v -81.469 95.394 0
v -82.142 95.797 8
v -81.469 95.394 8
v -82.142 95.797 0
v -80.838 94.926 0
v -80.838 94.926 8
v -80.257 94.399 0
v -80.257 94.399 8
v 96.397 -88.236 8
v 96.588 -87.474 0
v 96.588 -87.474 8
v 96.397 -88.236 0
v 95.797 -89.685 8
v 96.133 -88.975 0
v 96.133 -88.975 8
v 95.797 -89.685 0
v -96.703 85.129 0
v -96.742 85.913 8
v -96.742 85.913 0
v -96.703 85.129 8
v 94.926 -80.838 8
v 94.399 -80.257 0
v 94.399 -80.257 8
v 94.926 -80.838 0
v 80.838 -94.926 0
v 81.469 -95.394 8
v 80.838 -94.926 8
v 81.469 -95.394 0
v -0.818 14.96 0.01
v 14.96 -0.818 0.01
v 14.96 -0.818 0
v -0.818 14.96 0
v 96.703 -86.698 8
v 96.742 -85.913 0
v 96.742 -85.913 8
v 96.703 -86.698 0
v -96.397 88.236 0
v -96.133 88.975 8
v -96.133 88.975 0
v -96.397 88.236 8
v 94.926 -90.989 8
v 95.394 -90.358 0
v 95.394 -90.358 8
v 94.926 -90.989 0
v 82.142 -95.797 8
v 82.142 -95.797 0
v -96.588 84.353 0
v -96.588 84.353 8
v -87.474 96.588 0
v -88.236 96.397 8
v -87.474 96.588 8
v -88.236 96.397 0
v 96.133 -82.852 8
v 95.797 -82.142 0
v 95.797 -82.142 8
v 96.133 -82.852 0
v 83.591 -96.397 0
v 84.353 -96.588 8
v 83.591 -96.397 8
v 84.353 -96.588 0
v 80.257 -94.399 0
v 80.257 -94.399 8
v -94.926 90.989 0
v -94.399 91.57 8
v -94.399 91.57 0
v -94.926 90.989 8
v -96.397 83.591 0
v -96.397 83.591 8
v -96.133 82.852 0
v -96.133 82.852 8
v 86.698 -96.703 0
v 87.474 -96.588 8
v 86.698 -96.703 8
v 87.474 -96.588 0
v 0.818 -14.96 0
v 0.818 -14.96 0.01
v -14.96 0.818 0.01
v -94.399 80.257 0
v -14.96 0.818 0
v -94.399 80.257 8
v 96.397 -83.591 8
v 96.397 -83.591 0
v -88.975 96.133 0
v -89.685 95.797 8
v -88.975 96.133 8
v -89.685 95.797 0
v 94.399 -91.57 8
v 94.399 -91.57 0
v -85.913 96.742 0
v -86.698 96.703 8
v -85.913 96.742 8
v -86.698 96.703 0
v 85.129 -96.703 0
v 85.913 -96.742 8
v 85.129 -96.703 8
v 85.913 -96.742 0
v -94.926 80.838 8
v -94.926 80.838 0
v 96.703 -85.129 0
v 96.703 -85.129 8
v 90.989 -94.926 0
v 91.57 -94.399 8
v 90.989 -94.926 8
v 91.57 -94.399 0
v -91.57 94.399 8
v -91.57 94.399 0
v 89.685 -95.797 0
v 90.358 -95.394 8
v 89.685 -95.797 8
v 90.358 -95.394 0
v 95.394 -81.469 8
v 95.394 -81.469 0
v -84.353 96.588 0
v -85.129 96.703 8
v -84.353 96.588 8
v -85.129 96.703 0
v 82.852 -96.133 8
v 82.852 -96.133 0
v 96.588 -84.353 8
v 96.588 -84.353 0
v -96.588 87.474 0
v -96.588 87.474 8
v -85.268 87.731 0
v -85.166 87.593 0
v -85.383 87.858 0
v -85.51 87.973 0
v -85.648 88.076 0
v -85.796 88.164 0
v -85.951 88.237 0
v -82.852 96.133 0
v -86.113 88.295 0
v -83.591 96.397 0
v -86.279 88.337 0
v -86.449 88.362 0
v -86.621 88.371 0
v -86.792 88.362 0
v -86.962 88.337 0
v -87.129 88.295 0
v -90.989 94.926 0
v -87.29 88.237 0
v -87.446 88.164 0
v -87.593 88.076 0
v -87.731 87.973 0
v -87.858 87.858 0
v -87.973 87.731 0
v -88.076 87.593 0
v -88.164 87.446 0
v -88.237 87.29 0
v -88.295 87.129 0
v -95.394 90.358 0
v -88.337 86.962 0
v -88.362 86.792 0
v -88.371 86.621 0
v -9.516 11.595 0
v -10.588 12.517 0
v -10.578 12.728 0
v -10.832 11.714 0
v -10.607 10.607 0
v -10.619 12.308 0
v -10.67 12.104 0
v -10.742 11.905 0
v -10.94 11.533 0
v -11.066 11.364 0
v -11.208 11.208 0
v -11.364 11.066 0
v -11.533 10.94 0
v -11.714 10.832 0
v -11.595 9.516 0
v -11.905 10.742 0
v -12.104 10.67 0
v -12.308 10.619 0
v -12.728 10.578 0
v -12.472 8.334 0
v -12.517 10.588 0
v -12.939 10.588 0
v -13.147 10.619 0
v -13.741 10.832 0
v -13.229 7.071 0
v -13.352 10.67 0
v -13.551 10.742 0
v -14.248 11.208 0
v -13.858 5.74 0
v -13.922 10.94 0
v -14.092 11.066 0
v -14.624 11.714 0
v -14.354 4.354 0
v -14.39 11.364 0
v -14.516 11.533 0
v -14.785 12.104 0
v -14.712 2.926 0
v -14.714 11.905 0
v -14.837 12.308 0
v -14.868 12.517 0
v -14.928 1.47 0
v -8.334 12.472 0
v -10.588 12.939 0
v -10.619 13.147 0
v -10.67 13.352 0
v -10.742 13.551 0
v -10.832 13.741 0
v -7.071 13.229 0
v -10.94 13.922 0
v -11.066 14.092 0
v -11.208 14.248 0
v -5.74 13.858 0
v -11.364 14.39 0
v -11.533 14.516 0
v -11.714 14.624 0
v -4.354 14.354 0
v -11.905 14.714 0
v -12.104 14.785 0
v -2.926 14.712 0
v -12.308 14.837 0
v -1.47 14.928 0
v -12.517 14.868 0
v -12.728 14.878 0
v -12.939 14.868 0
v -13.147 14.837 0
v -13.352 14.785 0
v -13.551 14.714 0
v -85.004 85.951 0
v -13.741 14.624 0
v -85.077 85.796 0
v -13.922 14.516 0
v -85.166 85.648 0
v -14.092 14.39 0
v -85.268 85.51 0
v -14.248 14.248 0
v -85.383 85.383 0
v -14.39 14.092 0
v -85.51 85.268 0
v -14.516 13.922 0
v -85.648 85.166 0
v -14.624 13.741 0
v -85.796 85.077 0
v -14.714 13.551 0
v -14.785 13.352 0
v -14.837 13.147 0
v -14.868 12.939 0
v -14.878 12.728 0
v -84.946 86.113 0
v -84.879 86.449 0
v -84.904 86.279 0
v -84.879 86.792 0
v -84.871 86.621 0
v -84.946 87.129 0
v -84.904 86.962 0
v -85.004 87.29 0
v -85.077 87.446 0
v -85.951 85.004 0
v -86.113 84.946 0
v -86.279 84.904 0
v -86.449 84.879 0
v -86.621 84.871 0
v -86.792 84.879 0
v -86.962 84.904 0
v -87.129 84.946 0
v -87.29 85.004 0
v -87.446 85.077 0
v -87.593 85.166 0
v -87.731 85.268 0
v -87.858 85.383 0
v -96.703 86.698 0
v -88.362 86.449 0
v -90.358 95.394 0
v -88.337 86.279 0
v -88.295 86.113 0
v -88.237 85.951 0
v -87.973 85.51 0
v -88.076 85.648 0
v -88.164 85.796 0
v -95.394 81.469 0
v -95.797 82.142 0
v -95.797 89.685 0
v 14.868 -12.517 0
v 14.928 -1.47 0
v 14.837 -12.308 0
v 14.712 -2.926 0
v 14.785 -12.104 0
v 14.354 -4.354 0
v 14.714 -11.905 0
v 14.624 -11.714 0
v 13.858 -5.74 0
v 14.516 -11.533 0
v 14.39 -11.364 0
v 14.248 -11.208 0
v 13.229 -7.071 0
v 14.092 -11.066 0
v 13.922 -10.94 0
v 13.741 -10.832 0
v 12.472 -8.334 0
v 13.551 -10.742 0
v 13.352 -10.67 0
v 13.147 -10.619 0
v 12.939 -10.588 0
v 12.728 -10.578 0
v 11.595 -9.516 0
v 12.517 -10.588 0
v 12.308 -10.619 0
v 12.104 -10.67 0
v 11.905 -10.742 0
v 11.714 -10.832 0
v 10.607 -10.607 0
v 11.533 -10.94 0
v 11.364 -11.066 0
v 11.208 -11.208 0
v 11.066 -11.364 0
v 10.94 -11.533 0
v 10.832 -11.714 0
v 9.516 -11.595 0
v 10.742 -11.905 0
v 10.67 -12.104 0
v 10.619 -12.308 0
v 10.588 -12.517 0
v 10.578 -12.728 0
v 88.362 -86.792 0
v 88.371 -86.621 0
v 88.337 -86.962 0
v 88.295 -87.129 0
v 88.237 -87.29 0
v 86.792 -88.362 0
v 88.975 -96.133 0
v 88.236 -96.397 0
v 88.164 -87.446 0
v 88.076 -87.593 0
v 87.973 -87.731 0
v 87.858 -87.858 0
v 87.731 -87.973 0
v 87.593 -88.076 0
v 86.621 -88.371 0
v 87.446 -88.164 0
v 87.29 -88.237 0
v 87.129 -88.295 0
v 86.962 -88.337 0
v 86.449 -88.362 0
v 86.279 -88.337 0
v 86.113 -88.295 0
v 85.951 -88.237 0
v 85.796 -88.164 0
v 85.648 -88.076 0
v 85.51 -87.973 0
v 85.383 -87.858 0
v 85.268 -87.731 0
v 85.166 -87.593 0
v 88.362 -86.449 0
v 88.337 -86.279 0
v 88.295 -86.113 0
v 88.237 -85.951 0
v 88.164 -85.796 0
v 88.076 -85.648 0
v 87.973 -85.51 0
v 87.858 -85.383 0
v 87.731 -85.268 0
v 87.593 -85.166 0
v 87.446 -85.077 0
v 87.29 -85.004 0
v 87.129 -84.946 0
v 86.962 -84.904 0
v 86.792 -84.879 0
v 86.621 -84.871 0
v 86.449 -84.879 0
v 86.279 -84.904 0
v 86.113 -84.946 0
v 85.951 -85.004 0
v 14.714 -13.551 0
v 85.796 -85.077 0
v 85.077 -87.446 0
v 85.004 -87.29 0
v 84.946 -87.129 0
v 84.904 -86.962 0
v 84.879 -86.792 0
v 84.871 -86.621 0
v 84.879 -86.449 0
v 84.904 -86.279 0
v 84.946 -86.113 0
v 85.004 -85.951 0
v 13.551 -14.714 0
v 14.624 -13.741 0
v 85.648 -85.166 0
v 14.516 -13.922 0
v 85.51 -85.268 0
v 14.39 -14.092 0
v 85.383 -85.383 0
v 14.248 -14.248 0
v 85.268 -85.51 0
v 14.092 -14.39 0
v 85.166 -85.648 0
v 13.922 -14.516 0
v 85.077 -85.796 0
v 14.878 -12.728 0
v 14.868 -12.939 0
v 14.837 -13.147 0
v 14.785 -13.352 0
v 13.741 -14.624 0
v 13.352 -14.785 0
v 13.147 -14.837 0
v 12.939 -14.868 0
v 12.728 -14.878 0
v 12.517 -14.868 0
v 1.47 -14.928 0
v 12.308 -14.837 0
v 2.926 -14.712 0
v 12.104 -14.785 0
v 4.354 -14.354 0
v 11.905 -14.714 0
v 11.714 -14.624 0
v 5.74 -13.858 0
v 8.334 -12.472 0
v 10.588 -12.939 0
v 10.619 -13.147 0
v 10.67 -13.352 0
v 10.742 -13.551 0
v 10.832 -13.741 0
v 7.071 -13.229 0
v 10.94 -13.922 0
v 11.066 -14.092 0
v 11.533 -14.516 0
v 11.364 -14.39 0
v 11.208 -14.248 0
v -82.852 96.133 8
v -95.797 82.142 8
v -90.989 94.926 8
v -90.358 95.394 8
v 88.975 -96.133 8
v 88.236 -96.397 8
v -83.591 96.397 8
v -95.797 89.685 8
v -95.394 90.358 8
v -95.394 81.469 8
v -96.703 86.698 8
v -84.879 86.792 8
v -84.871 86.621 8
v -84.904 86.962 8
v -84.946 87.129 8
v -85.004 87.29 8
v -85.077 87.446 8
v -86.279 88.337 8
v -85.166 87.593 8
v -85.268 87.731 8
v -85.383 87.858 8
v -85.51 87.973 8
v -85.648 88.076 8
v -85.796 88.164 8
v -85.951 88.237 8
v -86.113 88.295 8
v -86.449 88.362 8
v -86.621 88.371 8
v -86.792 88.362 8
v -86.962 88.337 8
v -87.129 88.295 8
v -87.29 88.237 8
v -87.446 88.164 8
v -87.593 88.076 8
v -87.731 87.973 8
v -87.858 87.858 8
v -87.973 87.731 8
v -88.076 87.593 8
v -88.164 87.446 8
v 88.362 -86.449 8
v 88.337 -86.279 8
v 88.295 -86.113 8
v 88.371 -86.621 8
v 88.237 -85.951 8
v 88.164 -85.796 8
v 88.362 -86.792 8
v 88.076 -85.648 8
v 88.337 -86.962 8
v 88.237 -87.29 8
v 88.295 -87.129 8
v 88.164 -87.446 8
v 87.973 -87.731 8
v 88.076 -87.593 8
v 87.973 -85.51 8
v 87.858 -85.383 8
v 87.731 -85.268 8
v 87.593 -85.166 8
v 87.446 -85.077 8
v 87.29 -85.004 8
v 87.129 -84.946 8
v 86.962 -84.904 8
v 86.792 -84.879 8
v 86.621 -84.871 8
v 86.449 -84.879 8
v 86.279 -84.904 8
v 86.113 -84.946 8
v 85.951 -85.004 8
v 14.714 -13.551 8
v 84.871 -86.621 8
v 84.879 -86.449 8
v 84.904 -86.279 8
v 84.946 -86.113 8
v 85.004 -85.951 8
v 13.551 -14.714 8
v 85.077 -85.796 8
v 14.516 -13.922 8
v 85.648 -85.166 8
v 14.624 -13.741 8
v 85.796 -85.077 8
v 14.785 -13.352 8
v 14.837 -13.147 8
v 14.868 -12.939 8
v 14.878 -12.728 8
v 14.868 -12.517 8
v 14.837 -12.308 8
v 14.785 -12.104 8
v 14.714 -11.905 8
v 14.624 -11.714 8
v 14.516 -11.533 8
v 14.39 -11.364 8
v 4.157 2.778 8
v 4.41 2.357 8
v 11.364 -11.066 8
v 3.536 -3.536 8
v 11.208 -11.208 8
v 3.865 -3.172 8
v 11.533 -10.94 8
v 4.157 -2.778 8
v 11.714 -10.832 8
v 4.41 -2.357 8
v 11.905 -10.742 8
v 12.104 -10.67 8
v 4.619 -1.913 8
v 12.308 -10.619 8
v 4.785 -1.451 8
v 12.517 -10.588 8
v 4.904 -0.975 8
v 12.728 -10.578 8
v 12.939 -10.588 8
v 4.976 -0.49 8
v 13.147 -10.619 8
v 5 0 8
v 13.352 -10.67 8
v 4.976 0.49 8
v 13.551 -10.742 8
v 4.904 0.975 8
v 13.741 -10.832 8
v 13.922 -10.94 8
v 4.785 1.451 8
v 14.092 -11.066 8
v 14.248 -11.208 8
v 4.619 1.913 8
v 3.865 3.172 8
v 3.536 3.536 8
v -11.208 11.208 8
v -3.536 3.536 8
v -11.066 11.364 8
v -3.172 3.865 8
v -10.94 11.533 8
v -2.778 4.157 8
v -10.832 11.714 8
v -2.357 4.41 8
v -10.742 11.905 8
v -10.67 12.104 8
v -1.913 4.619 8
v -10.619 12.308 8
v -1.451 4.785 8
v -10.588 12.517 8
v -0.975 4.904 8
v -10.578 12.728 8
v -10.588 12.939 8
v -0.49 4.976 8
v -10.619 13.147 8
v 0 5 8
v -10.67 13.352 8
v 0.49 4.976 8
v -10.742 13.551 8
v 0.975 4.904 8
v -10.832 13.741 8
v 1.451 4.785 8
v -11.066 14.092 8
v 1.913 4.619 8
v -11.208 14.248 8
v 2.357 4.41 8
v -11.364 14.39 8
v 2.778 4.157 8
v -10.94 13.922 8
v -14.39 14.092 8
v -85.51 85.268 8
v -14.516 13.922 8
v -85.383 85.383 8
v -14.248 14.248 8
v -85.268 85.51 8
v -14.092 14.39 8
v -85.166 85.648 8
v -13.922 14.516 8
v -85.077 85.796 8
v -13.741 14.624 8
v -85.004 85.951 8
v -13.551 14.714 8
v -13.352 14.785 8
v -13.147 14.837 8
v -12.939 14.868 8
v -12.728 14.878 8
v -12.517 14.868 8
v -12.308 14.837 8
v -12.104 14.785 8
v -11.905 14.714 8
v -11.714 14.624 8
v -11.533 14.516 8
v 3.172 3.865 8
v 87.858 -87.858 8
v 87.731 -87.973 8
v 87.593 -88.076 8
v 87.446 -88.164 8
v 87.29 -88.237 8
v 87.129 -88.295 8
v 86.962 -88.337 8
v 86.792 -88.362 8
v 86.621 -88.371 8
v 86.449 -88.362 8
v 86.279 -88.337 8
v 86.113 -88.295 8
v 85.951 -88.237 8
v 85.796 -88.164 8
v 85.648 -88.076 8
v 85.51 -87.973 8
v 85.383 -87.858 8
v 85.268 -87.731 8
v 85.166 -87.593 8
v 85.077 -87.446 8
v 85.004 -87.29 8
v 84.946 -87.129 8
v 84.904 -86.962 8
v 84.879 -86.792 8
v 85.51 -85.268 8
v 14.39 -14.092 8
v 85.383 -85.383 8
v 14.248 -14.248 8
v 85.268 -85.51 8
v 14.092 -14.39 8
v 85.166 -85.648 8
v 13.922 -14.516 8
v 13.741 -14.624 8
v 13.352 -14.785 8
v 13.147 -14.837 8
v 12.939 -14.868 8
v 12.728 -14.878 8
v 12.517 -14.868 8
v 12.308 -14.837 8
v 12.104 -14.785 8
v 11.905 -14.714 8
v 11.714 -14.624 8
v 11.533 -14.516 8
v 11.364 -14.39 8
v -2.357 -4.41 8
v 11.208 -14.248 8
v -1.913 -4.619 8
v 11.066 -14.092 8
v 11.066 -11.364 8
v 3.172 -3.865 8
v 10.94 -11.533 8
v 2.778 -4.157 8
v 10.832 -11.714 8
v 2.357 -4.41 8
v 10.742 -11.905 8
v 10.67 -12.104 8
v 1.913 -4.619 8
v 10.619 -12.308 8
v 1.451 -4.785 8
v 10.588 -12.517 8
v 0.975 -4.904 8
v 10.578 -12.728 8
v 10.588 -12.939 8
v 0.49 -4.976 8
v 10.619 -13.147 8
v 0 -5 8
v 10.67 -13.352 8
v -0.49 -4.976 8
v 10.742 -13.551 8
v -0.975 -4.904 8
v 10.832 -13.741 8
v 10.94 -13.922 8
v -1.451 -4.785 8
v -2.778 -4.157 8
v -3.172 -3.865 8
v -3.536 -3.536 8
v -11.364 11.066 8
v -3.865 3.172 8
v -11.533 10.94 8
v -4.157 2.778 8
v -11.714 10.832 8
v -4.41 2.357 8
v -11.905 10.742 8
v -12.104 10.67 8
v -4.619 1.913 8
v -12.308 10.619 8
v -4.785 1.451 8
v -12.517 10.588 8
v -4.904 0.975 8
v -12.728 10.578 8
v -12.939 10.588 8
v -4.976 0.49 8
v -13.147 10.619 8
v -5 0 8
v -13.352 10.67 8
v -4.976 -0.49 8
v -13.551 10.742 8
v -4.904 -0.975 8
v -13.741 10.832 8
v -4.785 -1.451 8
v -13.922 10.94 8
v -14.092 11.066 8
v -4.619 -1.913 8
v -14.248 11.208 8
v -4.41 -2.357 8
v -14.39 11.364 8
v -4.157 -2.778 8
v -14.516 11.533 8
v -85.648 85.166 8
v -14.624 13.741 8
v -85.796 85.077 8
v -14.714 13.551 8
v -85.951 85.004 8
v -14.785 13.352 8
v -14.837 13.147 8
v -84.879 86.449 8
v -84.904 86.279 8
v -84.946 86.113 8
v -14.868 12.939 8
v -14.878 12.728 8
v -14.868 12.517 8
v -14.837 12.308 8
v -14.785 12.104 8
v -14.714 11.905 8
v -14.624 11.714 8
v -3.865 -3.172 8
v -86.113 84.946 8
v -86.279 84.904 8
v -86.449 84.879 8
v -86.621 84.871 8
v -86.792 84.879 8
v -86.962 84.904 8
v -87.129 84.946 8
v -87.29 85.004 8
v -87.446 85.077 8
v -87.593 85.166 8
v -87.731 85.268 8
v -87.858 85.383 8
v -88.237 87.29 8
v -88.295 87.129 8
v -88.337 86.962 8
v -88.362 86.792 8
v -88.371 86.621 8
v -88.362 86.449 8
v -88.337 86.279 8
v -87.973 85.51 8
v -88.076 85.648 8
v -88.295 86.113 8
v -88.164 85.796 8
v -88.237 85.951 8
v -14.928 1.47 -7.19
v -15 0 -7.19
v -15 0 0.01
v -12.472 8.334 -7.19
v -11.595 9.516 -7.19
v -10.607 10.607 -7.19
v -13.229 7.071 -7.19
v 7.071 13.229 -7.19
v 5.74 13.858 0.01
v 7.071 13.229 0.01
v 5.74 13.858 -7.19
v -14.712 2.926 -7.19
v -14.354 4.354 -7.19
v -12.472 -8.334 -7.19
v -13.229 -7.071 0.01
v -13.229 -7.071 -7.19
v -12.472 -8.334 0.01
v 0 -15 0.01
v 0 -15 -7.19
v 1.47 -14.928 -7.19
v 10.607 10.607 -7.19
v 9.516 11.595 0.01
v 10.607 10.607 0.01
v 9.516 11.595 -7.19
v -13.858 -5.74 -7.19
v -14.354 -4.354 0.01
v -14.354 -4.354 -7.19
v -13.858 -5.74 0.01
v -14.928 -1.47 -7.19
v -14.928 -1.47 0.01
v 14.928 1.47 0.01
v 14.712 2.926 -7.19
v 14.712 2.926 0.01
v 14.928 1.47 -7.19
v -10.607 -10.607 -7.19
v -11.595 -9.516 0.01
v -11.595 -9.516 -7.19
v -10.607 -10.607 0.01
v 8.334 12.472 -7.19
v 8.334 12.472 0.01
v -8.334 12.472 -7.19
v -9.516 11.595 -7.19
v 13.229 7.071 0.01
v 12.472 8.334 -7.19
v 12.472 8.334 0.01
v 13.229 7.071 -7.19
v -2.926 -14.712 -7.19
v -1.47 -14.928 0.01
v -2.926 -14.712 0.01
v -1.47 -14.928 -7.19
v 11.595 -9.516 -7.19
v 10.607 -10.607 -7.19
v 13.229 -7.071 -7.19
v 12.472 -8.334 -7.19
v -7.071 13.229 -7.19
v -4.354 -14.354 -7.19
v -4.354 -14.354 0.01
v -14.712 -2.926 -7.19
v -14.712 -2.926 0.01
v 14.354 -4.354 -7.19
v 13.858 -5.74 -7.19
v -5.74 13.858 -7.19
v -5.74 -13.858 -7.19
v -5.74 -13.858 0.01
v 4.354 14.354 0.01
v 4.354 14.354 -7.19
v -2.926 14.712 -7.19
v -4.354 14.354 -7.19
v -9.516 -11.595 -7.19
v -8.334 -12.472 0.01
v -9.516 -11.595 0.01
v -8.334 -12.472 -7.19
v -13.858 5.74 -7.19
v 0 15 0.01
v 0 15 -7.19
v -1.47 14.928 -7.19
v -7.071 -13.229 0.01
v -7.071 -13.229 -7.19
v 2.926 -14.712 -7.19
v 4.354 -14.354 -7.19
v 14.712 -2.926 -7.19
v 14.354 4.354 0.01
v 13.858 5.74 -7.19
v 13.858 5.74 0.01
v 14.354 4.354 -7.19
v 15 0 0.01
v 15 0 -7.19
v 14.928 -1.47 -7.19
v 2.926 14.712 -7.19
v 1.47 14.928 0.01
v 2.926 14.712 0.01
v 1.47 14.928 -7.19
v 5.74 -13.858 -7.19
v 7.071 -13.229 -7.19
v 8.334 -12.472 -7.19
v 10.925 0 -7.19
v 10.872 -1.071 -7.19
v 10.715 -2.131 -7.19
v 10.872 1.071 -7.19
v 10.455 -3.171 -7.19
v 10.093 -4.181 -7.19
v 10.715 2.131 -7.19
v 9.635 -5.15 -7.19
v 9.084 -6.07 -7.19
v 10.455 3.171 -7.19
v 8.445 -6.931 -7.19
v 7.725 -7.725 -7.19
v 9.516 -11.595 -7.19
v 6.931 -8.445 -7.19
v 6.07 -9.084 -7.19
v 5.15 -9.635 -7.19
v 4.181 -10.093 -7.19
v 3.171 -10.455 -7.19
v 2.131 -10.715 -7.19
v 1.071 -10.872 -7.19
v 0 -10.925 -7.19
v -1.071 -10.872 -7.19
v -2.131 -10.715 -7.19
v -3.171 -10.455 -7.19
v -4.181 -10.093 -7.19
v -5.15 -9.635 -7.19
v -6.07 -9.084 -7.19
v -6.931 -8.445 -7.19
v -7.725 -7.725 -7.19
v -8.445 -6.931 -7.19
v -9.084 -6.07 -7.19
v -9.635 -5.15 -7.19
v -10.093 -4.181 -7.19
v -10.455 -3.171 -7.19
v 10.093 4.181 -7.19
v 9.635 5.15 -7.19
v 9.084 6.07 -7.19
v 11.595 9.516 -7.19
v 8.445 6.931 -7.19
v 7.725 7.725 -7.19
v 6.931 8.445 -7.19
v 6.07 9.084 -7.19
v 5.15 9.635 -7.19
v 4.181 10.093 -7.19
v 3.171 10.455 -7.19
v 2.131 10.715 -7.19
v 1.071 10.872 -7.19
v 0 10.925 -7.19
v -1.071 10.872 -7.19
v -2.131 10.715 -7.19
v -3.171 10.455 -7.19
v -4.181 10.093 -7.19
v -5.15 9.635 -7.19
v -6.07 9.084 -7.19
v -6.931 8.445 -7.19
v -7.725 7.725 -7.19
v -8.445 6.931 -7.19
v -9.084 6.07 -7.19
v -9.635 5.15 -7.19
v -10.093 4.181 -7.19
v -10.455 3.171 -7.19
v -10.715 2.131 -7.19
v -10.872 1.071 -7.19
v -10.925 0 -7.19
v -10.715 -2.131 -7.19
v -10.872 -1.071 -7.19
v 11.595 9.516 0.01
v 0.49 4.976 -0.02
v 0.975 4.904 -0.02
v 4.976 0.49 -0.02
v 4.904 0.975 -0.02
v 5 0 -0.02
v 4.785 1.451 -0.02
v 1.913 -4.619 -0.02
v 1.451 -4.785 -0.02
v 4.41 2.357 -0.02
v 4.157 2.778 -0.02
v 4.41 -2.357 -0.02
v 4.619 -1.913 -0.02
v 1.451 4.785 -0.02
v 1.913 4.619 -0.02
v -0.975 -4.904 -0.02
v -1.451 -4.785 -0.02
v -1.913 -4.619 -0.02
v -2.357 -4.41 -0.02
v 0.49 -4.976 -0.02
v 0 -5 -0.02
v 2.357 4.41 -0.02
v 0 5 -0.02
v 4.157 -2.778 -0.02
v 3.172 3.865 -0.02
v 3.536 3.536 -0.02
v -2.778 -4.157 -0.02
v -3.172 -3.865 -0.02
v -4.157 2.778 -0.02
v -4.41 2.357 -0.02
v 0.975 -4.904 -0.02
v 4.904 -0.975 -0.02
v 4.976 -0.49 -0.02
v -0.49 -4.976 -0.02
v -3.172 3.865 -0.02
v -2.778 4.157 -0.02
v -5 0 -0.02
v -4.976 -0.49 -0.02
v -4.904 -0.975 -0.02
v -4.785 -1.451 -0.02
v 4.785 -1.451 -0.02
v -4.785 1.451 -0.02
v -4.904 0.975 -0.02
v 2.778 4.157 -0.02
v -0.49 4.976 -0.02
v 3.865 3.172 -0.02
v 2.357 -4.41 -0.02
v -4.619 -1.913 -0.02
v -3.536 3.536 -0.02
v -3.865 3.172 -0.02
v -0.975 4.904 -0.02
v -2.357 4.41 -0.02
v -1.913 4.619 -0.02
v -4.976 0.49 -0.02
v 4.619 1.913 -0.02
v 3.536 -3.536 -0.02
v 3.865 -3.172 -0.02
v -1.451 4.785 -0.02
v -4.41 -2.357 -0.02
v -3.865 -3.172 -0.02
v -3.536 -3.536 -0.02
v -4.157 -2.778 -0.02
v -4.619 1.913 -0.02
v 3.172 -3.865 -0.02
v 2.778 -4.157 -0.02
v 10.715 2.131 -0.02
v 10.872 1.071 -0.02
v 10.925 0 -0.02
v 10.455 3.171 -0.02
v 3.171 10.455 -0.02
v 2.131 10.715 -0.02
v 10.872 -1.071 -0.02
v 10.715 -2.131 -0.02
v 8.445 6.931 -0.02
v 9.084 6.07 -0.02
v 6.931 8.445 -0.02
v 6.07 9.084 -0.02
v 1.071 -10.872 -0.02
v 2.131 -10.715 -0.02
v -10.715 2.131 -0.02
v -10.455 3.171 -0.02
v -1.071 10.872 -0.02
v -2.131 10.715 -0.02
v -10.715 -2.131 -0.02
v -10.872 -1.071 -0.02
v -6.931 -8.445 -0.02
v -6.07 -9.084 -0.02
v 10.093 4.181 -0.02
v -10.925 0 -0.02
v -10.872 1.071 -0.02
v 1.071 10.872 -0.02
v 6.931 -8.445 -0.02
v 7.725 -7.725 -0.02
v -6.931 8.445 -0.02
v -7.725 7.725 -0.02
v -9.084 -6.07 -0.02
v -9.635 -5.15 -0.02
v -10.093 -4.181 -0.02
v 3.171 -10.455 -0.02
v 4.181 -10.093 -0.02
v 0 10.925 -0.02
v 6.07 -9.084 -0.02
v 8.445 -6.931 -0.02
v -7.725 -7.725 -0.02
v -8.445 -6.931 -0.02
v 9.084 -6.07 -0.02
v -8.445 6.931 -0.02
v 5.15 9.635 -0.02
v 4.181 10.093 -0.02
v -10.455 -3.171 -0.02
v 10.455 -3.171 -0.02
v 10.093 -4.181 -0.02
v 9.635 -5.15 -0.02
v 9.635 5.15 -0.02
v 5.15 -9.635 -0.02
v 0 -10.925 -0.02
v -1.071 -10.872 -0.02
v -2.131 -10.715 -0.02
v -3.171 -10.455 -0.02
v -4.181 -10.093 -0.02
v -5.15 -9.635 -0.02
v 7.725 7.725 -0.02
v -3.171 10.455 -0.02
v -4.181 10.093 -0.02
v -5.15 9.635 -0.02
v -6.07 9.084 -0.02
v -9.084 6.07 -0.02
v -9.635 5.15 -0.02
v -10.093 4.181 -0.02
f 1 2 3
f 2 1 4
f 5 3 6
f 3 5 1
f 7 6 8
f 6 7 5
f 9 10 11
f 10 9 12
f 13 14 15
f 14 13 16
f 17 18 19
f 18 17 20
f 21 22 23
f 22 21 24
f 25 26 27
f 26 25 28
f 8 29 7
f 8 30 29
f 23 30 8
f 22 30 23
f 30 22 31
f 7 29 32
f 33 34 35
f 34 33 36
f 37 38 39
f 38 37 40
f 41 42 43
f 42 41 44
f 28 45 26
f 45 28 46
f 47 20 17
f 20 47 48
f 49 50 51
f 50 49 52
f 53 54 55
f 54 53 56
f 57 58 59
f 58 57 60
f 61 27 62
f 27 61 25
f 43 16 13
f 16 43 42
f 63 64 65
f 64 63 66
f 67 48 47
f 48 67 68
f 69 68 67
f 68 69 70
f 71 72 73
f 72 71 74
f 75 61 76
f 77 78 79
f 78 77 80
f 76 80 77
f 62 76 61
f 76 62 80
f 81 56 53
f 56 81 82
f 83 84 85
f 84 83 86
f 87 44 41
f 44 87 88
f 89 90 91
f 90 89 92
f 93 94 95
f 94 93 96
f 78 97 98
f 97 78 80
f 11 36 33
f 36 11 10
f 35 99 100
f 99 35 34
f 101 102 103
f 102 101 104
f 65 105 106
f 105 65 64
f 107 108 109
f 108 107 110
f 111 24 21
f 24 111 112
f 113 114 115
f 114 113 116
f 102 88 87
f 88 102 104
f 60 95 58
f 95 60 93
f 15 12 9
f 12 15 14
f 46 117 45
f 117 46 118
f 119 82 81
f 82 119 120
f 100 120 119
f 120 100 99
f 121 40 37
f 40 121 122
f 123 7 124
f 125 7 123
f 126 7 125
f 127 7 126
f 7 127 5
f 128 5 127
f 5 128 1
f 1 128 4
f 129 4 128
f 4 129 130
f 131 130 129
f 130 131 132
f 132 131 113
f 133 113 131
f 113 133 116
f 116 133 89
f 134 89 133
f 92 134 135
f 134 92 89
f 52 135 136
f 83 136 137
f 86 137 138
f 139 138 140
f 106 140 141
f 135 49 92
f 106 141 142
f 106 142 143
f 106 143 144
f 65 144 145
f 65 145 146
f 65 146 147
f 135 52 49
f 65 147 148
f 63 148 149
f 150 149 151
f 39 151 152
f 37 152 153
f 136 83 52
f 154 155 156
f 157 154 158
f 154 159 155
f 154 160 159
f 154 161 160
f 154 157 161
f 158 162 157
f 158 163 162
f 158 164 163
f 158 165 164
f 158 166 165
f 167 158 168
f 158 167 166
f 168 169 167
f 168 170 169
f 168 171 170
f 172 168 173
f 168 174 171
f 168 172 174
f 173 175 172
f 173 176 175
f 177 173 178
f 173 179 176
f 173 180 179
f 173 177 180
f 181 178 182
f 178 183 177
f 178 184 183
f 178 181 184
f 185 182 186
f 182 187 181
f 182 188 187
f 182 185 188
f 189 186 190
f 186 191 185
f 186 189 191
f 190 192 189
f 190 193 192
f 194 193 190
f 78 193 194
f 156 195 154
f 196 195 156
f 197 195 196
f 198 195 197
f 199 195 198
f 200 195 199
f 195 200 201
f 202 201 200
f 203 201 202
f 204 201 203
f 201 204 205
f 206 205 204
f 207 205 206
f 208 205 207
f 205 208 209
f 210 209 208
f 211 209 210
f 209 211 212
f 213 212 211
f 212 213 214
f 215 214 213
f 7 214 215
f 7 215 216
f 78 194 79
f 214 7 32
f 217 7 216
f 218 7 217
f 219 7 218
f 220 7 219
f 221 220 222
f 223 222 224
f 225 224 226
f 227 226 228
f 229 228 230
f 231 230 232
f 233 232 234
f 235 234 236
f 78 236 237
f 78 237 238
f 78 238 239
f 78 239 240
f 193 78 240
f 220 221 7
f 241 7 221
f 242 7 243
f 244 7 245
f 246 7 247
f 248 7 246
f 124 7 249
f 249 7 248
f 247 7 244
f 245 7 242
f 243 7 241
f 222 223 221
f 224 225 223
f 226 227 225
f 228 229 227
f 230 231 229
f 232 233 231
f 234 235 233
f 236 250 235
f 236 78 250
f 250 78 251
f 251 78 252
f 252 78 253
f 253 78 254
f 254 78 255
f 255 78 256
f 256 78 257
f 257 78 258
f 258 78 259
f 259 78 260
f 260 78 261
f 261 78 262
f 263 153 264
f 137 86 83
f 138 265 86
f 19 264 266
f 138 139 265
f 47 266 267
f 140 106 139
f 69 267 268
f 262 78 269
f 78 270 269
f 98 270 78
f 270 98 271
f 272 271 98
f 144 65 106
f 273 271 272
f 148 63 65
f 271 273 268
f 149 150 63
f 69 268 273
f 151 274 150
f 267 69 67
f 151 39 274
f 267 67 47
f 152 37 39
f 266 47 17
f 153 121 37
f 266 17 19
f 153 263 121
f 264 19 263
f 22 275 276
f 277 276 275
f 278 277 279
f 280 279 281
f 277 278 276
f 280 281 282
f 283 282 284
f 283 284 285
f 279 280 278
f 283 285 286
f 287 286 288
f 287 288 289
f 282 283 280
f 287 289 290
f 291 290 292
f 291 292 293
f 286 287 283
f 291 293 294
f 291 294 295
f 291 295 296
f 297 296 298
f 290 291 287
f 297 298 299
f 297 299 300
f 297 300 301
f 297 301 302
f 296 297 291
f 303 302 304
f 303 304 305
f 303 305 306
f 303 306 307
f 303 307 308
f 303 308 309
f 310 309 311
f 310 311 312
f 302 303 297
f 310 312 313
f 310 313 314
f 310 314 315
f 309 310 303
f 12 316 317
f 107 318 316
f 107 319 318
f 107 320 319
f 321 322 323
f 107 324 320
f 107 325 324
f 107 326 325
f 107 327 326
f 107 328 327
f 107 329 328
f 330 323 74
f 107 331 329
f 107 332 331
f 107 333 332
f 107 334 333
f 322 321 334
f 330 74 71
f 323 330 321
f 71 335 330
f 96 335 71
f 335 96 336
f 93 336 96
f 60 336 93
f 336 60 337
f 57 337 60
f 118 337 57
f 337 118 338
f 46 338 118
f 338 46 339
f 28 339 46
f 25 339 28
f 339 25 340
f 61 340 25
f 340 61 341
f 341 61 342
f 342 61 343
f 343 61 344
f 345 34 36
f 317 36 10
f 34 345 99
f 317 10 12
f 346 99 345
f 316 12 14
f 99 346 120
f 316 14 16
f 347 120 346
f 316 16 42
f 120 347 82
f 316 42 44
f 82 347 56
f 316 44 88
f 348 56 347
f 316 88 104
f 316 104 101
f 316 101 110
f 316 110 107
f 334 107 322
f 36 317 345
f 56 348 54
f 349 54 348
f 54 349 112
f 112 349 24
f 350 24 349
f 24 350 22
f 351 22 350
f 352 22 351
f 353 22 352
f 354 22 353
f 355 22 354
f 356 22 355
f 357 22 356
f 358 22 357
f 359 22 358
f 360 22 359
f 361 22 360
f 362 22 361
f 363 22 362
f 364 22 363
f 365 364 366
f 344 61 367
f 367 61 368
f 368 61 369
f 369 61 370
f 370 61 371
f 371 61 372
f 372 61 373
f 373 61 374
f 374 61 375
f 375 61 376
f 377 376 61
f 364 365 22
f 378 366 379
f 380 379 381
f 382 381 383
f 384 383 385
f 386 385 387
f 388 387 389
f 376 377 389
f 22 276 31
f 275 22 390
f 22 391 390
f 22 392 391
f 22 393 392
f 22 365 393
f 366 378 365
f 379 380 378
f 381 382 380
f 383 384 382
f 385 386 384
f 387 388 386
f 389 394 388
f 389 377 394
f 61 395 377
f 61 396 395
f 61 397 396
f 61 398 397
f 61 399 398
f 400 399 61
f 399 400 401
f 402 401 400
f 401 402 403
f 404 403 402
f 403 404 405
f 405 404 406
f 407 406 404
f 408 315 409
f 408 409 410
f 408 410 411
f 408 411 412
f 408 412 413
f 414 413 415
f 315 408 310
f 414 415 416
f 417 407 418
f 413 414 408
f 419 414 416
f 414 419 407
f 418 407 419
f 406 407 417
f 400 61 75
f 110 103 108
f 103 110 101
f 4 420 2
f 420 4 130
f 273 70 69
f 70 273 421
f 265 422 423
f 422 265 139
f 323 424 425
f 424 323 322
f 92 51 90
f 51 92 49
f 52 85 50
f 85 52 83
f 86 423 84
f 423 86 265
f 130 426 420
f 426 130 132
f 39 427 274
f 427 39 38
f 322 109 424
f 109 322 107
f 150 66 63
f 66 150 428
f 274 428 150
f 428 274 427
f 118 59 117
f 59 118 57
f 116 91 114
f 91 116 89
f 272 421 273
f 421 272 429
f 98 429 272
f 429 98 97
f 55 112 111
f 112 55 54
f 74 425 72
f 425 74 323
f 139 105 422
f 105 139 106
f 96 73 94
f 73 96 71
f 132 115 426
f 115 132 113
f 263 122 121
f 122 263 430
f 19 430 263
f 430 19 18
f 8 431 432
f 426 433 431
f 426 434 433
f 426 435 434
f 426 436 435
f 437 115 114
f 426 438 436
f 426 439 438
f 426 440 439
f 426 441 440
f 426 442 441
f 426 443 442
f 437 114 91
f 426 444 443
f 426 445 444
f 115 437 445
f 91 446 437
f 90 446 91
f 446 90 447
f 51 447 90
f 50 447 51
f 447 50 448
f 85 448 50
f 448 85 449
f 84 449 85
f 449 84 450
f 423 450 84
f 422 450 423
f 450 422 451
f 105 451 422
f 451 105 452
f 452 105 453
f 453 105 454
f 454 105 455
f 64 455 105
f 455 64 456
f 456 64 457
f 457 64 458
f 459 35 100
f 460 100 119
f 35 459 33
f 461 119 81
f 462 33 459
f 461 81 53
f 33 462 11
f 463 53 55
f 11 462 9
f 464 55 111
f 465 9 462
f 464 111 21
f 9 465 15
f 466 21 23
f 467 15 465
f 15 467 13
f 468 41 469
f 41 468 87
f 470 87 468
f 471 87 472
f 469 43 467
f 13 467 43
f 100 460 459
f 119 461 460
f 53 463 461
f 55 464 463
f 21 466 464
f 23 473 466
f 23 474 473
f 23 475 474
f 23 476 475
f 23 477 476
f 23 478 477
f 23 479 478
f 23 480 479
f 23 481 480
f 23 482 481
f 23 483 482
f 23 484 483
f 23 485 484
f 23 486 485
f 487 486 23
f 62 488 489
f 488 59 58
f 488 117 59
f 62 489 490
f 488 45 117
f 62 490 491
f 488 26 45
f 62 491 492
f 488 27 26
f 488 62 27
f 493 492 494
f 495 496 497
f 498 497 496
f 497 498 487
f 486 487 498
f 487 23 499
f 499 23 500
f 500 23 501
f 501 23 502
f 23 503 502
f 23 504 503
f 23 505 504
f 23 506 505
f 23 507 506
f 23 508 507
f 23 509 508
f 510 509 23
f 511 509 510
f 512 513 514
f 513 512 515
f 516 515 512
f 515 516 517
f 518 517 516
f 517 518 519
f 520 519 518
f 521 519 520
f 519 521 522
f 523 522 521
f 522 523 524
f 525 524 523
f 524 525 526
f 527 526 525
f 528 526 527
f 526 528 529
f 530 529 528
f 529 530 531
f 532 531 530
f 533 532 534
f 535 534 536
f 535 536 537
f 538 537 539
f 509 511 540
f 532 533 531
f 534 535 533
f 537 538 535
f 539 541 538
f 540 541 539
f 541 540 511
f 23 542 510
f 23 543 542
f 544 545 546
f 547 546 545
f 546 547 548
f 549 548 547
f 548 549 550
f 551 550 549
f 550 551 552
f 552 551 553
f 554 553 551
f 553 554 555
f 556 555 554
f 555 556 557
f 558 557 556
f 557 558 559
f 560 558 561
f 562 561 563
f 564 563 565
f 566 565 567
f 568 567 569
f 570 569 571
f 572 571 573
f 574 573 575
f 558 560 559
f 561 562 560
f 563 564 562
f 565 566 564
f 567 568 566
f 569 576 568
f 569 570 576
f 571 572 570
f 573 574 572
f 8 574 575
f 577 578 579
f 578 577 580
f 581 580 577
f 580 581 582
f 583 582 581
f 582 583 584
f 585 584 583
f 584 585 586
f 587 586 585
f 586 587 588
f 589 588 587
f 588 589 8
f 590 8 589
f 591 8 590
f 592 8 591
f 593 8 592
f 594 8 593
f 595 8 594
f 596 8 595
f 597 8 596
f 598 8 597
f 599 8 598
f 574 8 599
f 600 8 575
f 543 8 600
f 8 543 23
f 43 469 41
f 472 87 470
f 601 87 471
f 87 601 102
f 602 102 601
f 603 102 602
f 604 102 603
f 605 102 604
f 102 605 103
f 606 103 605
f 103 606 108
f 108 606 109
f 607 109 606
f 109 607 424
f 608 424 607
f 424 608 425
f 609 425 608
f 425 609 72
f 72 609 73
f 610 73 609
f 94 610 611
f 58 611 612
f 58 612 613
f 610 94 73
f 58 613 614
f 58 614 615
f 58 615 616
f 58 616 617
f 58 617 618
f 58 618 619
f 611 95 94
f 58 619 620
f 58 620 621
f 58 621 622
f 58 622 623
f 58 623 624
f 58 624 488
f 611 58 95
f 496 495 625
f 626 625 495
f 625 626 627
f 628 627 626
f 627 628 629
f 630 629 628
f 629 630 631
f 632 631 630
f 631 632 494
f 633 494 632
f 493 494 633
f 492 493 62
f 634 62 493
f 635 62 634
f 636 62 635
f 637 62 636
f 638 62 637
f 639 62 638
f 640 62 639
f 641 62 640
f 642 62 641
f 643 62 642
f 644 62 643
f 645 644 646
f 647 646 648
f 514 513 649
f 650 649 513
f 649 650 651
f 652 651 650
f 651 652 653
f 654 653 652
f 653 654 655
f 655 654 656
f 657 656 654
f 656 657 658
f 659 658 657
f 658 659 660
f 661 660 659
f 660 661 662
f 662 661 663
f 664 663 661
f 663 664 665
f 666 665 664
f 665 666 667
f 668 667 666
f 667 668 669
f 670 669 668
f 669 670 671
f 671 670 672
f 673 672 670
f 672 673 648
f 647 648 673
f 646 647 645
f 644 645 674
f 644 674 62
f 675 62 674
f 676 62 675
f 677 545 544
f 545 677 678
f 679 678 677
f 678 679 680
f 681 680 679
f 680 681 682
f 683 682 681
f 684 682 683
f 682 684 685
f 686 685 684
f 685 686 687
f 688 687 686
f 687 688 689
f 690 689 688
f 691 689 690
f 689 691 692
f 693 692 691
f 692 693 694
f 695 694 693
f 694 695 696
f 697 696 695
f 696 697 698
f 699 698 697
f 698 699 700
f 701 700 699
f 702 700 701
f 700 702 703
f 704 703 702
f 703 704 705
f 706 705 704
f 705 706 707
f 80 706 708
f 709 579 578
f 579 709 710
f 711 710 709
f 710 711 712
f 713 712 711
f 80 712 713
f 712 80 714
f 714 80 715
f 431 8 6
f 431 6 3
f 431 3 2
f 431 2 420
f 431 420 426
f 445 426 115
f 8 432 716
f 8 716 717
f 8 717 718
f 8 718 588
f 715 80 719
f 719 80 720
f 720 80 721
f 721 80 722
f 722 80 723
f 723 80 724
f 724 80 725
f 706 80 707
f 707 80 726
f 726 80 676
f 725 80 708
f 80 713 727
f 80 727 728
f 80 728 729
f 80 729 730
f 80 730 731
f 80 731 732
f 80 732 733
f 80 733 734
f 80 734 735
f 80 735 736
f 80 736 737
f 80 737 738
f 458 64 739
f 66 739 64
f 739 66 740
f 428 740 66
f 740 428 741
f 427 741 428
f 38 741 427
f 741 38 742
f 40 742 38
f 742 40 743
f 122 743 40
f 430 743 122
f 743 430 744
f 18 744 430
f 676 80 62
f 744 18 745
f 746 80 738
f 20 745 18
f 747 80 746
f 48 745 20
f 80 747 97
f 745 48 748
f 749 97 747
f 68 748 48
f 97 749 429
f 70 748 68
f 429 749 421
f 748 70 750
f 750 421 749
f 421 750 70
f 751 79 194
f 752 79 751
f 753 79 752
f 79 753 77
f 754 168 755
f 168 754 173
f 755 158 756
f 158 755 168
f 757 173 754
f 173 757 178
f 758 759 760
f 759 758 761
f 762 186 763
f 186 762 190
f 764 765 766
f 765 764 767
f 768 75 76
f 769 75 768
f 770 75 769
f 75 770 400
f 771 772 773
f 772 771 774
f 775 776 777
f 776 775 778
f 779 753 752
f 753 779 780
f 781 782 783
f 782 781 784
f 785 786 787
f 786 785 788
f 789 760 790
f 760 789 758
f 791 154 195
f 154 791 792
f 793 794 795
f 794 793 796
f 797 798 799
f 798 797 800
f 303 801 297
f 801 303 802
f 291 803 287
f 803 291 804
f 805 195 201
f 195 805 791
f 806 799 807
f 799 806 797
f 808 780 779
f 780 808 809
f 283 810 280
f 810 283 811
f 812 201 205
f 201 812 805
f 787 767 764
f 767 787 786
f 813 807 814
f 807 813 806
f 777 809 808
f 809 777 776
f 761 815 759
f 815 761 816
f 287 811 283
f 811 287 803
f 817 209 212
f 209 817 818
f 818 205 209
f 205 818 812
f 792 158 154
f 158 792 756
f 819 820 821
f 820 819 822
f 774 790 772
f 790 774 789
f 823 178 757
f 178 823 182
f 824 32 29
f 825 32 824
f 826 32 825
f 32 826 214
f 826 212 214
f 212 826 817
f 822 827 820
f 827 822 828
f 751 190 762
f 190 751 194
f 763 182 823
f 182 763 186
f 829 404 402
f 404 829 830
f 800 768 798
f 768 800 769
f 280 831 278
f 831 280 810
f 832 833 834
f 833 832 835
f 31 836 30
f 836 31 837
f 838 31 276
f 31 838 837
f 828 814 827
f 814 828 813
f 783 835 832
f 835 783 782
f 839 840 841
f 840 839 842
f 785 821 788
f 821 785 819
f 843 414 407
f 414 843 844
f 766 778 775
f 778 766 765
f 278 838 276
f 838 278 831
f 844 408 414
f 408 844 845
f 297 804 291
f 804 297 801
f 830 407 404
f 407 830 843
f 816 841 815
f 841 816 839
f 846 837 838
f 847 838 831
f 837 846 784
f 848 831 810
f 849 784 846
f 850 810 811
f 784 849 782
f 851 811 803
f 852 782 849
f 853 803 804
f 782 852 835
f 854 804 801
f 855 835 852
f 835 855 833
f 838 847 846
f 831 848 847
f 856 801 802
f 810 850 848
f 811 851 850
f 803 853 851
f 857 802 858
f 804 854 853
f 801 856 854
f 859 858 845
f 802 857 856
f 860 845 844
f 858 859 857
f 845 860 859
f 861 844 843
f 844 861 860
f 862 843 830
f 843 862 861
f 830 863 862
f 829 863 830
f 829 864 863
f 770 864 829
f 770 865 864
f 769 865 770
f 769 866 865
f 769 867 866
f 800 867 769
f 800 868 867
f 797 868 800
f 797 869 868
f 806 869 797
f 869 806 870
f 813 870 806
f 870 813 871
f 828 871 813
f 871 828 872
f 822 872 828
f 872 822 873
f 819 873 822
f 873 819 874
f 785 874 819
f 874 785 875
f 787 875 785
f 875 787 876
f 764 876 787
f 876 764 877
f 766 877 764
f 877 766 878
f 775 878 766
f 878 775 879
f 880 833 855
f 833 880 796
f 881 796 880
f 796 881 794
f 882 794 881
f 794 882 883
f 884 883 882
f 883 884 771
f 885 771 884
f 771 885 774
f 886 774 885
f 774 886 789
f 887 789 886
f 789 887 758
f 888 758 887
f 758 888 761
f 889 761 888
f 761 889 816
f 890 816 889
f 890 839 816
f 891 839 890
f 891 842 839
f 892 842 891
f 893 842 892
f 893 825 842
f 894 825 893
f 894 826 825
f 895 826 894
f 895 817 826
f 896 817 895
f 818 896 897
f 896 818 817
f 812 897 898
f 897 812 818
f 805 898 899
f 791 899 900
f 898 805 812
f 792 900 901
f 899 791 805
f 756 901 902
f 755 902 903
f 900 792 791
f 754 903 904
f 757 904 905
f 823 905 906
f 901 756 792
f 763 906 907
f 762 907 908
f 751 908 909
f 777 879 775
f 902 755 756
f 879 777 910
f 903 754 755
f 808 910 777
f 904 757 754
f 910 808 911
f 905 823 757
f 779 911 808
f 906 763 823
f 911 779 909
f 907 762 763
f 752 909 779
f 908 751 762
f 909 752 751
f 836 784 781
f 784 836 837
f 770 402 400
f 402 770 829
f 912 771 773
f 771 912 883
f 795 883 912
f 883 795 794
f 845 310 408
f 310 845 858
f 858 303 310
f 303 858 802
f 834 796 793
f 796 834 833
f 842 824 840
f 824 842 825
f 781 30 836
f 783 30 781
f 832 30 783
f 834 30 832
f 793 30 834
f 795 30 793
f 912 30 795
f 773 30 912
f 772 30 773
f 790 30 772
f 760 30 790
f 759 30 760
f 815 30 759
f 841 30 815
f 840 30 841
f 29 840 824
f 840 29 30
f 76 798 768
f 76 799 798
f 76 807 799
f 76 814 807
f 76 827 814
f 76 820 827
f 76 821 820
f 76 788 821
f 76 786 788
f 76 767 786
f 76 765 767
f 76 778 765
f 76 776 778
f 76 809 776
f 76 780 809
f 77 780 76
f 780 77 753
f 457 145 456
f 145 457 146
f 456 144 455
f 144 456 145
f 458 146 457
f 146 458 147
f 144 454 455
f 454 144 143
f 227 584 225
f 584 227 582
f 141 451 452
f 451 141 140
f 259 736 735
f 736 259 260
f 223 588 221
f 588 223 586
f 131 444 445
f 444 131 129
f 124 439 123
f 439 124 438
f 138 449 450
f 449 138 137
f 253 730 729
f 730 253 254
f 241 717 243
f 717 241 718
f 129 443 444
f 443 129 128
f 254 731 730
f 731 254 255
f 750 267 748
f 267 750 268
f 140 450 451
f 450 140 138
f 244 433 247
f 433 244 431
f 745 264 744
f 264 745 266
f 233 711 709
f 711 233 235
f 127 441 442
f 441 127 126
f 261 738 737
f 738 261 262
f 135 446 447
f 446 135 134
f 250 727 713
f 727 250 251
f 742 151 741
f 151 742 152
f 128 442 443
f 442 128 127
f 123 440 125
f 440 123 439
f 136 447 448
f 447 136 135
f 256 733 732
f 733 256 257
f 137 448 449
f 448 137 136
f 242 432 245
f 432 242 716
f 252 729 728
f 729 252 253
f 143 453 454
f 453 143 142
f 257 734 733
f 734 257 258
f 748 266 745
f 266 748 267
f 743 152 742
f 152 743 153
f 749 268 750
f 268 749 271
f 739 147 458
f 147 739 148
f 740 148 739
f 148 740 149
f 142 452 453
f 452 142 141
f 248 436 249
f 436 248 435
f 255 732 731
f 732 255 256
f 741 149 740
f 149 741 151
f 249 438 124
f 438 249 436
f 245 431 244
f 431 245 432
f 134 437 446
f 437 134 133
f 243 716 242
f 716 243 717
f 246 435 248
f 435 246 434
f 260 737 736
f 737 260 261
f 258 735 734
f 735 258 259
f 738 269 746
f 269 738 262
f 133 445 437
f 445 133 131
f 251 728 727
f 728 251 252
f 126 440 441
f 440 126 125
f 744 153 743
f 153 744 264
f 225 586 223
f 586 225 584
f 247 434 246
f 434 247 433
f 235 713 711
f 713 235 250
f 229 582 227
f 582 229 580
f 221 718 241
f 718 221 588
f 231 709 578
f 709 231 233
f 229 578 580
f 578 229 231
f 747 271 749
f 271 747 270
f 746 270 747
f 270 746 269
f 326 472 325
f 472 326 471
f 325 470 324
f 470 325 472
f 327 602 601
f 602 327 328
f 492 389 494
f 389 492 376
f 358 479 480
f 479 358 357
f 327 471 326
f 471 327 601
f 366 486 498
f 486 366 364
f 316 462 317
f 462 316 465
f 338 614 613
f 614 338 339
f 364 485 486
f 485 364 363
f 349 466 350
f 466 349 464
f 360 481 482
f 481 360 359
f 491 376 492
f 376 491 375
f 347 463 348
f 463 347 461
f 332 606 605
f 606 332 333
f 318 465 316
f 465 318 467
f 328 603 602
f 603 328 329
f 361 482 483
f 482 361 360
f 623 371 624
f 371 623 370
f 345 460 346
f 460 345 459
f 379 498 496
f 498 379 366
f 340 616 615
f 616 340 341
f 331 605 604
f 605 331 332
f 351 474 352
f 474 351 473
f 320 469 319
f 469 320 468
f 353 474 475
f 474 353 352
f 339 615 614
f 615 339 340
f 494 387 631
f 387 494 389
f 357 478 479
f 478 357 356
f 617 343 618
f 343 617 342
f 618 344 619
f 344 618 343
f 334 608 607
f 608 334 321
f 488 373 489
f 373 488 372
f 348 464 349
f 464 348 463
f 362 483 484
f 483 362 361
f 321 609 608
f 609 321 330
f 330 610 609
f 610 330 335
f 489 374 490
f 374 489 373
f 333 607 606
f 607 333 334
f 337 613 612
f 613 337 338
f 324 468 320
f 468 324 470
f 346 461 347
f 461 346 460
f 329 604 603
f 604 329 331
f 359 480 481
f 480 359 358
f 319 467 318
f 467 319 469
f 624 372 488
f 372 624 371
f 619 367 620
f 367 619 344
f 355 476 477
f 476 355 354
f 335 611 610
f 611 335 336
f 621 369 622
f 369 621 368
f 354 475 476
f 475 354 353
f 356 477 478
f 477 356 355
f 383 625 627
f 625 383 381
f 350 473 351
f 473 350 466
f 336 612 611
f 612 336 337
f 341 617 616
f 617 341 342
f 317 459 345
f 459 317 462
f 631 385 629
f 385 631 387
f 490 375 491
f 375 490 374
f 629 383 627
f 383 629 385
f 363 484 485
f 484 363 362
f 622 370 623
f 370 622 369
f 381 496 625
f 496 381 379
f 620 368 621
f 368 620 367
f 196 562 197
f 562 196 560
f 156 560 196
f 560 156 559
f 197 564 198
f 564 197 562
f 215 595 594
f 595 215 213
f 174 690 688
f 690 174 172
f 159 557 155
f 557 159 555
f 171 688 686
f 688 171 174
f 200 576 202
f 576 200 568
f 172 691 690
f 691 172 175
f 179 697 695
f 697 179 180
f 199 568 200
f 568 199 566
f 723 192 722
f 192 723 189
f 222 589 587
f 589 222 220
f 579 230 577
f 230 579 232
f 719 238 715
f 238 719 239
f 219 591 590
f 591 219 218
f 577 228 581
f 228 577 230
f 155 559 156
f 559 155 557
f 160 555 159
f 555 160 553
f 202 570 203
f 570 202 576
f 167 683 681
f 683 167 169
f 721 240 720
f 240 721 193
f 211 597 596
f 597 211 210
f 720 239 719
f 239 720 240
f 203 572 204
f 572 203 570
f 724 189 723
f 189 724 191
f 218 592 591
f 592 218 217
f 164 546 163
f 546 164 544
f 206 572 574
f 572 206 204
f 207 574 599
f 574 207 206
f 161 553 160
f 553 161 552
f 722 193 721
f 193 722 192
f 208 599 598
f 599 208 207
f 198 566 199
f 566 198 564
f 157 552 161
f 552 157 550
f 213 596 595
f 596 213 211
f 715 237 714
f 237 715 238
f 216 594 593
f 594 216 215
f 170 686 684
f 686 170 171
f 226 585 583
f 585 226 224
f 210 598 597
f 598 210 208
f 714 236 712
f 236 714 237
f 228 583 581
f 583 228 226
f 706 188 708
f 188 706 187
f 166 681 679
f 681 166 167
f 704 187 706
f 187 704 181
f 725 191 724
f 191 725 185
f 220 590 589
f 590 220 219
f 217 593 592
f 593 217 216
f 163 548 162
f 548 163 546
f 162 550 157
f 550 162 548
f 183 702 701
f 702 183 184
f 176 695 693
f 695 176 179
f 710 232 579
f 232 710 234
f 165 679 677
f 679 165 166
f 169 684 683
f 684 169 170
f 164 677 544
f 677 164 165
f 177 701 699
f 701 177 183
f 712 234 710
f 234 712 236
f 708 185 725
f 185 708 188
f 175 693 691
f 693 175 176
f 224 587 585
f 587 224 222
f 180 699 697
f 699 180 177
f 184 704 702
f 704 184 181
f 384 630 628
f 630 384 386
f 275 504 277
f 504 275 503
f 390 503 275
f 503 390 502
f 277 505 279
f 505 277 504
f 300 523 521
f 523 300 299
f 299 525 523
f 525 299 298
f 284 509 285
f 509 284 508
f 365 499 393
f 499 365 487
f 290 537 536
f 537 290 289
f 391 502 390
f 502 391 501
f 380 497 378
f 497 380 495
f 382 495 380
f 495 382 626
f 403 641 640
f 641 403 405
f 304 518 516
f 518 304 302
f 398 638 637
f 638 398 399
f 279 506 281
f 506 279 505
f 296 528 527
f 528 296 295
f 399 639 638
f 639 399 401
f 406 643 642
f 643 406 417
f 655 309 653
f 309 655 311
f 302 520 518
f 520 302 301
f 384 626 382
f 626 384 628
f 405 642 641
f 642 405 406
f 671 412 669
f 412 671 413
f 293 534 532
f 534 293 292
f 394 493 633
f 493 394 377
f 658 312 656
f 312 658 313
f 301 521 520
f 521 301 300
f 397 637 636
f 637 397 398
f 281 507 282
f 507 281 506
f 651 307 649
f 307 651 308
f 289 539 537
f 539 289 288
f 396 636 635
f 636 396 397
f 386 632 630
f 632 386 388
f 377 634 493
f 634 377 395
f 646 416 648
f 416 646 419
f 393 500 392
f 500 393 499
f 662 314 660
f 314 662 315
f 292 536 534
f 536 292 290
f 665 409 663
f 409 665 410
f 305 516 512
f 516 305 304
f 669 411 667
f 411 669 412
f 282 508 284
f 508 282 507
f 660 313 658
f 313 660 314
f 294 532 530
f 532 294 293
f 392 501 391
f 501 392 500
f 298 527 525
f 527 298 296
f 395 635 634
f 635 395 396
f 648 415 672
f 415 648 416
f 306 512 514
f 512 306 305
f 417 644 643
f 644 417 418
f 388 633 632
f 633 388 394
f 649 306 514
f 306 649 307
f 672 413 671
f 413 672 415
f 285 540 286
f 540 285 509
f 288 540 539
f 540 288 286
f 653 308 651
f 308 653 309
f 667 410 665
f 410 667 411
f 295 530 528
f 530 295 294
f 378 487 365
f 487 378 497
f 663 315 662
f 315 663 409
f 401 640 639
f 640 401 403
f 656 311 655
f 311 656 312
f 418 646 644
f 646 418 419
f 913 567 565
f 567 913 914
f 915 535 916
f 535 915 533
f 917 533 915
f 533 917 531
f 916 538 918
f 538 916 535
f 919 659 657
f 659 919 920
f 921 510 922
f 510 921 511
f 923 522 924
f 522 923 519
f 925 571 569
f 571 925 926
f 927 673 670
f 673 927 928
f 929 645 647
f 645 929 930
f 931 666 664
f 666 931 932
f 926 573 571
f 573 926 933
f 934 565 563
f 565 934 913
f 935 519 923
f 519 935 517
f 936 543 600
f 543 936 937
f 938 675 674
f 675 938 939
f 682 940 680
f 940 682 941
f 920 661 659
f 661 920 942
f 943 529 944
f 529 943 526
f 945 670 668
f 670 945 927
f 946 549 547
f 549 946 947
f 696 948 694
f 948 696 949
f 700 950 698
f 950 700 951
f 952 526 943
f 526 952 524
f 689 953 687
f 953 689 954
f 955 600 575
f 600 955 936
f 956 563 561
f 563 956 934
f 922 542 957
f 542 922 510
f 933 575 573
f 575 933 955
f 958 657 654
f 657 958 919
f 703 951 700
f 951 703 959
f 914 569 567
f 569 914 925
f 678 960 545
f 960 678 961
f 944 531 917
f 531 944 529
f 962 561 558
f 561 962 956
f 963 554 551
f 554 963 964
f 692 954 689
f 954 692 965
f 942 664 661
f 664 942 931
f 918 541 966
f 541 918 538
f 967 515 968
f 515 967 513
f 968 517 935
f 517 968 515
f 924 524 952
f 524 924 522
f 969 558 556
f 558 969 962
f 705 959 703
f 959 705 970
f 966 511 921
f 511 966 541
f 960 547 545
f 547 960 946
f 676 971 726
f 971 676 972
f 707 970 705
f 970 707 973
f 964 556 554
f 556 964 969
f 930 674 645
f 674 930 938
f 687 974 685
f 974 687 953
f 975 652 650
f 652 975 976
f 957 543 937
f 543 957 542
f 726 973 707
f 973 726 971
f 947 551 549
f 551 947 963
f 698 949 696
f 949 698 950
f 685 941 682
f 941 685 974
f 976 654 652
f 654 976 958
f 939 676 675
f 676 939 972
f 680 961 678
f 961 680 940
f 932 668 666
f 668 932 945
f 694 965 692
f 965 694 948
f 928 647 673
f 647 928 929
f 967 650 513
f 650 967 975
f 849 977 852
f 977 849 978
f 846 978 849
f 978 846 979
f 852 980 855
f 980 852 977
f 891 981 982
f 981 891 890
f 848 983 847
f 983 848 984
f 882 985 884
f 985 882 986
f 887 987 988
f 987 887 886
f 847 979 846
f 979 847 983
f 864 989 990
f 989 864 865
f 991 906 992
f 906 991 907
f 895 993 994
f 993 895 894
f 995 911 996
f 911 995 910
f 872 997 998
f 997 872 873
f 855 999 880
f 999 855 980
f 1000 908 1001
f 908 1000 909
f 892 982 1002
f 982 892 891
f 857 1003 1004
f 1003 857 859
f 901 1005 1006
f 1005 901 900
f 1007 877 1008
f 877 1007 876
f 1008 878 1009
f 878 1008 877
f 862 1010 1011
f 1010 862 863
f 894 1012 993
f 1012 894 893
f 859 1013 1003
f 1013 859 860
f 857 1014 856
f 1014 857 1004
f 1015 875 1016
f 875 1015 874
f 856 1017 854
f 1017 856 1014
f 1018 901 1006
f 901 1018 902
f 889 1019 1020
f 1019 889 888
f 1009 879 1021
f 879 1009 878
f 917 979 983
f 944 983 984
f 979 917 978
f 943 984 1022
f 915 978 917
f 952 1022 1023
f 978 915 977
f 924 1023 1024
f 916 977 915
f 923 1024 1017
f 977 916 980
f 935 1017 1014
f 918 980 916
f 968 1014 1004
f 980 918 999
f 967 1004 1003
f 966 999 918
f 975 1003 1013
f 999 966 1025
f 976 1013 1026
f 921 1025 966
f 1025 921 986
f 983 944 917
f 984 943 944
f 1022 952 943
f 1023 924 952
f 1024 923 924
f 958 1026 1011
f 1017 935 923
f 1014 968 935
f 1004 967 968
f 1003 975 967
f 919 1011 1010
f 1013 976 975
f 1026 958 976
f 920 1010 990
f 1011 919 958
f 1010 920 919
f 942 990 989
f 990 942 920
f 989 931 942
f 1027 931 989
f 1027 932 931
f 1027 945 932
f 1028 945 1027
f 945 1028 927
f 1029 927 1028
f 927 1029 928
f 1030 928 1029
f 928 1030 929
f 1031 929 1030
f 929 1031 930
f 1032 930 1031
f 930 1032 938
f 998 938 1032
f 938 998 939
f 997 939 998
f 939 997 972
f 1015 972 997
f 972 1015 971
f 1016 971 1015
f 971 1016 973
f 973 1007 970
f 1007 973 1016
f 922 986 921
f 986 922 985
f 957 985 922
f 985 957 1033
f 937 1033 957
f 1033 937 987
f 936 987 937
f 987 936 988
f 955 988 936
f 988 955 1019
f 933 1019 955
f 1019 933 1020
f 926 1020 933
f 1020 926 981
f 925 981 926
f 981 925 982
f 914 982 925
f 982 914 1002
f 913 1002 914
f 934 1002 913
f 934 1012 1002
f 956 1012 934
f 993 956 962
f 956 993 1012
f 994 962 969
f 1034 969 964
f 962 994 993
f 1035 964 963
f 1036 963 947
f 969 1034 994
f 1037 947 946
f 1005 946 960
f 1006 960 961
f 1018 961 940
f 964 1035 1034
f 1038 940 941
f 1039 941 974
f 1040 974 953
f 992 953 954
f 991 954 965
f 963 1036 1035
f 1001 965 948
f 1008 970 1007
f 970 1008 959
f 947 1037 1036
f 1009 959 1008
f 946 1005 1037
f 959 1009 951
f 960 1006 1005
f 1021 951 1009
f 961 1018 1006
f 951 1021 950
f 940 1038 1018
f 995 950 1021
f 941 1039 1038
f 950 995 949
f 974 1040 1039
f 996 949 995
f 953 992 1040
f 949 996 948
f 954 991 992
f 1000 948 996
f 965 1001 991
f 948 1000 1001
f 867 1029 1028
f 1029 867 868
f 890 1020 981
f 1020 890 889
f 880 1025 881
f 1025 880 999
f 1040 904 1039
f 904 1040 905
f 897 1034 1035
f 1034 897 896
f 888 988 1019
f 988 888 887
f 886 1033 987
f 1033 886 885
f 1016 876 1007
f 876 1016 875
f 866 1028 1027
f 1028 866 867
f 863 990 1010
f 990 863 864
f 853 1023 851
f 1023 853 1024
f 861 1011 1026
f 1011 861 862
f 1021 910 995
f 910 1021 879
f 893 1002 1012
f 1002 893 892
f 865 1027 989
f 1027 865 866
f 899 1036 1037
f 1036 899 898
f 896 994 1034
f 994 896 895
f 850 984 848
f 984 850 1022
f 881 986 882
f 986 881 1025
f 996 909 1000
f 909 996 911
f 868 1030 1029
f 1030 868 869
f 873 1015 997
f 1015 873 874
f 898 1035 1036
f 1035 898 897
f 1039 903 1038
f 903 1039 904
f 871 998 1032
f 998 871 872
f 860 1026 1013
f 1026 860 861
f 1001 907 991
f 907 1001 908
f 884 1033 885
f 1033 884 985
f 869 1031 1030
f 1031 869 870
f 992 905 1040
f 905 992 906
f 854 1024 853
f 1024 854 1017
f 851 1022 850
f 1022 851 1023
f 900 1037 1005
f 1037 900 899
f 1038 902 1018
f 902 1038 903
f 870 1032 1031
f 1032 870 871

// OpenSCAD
// Gen-DC — rear BEARING BRIDGE (bar endbell, 2026-10-10): a 608 boss on a 20 mm wide bar that spans the
// two frame rods at 135 deg and 135+180 deg (R = flange_bolt_r). The front bridge uses the rods at 45/225 deg, the rear
// bridge the rods at 135/315 deg, so the two bridges cross at 90 deg and the stator is held at 4 points.
// A bar instead of a full disc is what lets this big-ring kit fit ONE 410 mm plate. Print flat face DOWN (boss up, no supports).
// Brace holes (temporary M4 jack rods, R = brace_r) sit on the bar axis.
include <parameters.scad>;
$fn = 64;
bar_w = 20;
bar_len = 2 * (flange_bolt_r + 9);
module bar_2d() { offset(r=8) offset(delta=-8) square([bar_len, bar_w], center=true); }
difference() {
    rotate([0, 0, 135]) union() {
        linear_extrude(endbell_thick) bar_2d();
        translate([0, 0, -bearing_h + 0.01]) cylinder(d=30, h=bearing_h);
    }
    translate([0, 0, -bearing_h - 0.1]) cylinder(d=endbell_shaft_clear, h=50);
    translate([0, 0, -bearing_h - 0.02]) cylinder(d=bearing_d, h=bearing_h);
    for (s = [0, 180]) rotate([0, 0, 135 + s]) translate([flange_bolt_r, 0, -20]) cylinder(d=m3_clear, h=60);
    for (a = brace_angles) translate([brace_r*cos(a), brace_r*sin(a), -20]) cylinder(d=brace_d, h=50);
}
